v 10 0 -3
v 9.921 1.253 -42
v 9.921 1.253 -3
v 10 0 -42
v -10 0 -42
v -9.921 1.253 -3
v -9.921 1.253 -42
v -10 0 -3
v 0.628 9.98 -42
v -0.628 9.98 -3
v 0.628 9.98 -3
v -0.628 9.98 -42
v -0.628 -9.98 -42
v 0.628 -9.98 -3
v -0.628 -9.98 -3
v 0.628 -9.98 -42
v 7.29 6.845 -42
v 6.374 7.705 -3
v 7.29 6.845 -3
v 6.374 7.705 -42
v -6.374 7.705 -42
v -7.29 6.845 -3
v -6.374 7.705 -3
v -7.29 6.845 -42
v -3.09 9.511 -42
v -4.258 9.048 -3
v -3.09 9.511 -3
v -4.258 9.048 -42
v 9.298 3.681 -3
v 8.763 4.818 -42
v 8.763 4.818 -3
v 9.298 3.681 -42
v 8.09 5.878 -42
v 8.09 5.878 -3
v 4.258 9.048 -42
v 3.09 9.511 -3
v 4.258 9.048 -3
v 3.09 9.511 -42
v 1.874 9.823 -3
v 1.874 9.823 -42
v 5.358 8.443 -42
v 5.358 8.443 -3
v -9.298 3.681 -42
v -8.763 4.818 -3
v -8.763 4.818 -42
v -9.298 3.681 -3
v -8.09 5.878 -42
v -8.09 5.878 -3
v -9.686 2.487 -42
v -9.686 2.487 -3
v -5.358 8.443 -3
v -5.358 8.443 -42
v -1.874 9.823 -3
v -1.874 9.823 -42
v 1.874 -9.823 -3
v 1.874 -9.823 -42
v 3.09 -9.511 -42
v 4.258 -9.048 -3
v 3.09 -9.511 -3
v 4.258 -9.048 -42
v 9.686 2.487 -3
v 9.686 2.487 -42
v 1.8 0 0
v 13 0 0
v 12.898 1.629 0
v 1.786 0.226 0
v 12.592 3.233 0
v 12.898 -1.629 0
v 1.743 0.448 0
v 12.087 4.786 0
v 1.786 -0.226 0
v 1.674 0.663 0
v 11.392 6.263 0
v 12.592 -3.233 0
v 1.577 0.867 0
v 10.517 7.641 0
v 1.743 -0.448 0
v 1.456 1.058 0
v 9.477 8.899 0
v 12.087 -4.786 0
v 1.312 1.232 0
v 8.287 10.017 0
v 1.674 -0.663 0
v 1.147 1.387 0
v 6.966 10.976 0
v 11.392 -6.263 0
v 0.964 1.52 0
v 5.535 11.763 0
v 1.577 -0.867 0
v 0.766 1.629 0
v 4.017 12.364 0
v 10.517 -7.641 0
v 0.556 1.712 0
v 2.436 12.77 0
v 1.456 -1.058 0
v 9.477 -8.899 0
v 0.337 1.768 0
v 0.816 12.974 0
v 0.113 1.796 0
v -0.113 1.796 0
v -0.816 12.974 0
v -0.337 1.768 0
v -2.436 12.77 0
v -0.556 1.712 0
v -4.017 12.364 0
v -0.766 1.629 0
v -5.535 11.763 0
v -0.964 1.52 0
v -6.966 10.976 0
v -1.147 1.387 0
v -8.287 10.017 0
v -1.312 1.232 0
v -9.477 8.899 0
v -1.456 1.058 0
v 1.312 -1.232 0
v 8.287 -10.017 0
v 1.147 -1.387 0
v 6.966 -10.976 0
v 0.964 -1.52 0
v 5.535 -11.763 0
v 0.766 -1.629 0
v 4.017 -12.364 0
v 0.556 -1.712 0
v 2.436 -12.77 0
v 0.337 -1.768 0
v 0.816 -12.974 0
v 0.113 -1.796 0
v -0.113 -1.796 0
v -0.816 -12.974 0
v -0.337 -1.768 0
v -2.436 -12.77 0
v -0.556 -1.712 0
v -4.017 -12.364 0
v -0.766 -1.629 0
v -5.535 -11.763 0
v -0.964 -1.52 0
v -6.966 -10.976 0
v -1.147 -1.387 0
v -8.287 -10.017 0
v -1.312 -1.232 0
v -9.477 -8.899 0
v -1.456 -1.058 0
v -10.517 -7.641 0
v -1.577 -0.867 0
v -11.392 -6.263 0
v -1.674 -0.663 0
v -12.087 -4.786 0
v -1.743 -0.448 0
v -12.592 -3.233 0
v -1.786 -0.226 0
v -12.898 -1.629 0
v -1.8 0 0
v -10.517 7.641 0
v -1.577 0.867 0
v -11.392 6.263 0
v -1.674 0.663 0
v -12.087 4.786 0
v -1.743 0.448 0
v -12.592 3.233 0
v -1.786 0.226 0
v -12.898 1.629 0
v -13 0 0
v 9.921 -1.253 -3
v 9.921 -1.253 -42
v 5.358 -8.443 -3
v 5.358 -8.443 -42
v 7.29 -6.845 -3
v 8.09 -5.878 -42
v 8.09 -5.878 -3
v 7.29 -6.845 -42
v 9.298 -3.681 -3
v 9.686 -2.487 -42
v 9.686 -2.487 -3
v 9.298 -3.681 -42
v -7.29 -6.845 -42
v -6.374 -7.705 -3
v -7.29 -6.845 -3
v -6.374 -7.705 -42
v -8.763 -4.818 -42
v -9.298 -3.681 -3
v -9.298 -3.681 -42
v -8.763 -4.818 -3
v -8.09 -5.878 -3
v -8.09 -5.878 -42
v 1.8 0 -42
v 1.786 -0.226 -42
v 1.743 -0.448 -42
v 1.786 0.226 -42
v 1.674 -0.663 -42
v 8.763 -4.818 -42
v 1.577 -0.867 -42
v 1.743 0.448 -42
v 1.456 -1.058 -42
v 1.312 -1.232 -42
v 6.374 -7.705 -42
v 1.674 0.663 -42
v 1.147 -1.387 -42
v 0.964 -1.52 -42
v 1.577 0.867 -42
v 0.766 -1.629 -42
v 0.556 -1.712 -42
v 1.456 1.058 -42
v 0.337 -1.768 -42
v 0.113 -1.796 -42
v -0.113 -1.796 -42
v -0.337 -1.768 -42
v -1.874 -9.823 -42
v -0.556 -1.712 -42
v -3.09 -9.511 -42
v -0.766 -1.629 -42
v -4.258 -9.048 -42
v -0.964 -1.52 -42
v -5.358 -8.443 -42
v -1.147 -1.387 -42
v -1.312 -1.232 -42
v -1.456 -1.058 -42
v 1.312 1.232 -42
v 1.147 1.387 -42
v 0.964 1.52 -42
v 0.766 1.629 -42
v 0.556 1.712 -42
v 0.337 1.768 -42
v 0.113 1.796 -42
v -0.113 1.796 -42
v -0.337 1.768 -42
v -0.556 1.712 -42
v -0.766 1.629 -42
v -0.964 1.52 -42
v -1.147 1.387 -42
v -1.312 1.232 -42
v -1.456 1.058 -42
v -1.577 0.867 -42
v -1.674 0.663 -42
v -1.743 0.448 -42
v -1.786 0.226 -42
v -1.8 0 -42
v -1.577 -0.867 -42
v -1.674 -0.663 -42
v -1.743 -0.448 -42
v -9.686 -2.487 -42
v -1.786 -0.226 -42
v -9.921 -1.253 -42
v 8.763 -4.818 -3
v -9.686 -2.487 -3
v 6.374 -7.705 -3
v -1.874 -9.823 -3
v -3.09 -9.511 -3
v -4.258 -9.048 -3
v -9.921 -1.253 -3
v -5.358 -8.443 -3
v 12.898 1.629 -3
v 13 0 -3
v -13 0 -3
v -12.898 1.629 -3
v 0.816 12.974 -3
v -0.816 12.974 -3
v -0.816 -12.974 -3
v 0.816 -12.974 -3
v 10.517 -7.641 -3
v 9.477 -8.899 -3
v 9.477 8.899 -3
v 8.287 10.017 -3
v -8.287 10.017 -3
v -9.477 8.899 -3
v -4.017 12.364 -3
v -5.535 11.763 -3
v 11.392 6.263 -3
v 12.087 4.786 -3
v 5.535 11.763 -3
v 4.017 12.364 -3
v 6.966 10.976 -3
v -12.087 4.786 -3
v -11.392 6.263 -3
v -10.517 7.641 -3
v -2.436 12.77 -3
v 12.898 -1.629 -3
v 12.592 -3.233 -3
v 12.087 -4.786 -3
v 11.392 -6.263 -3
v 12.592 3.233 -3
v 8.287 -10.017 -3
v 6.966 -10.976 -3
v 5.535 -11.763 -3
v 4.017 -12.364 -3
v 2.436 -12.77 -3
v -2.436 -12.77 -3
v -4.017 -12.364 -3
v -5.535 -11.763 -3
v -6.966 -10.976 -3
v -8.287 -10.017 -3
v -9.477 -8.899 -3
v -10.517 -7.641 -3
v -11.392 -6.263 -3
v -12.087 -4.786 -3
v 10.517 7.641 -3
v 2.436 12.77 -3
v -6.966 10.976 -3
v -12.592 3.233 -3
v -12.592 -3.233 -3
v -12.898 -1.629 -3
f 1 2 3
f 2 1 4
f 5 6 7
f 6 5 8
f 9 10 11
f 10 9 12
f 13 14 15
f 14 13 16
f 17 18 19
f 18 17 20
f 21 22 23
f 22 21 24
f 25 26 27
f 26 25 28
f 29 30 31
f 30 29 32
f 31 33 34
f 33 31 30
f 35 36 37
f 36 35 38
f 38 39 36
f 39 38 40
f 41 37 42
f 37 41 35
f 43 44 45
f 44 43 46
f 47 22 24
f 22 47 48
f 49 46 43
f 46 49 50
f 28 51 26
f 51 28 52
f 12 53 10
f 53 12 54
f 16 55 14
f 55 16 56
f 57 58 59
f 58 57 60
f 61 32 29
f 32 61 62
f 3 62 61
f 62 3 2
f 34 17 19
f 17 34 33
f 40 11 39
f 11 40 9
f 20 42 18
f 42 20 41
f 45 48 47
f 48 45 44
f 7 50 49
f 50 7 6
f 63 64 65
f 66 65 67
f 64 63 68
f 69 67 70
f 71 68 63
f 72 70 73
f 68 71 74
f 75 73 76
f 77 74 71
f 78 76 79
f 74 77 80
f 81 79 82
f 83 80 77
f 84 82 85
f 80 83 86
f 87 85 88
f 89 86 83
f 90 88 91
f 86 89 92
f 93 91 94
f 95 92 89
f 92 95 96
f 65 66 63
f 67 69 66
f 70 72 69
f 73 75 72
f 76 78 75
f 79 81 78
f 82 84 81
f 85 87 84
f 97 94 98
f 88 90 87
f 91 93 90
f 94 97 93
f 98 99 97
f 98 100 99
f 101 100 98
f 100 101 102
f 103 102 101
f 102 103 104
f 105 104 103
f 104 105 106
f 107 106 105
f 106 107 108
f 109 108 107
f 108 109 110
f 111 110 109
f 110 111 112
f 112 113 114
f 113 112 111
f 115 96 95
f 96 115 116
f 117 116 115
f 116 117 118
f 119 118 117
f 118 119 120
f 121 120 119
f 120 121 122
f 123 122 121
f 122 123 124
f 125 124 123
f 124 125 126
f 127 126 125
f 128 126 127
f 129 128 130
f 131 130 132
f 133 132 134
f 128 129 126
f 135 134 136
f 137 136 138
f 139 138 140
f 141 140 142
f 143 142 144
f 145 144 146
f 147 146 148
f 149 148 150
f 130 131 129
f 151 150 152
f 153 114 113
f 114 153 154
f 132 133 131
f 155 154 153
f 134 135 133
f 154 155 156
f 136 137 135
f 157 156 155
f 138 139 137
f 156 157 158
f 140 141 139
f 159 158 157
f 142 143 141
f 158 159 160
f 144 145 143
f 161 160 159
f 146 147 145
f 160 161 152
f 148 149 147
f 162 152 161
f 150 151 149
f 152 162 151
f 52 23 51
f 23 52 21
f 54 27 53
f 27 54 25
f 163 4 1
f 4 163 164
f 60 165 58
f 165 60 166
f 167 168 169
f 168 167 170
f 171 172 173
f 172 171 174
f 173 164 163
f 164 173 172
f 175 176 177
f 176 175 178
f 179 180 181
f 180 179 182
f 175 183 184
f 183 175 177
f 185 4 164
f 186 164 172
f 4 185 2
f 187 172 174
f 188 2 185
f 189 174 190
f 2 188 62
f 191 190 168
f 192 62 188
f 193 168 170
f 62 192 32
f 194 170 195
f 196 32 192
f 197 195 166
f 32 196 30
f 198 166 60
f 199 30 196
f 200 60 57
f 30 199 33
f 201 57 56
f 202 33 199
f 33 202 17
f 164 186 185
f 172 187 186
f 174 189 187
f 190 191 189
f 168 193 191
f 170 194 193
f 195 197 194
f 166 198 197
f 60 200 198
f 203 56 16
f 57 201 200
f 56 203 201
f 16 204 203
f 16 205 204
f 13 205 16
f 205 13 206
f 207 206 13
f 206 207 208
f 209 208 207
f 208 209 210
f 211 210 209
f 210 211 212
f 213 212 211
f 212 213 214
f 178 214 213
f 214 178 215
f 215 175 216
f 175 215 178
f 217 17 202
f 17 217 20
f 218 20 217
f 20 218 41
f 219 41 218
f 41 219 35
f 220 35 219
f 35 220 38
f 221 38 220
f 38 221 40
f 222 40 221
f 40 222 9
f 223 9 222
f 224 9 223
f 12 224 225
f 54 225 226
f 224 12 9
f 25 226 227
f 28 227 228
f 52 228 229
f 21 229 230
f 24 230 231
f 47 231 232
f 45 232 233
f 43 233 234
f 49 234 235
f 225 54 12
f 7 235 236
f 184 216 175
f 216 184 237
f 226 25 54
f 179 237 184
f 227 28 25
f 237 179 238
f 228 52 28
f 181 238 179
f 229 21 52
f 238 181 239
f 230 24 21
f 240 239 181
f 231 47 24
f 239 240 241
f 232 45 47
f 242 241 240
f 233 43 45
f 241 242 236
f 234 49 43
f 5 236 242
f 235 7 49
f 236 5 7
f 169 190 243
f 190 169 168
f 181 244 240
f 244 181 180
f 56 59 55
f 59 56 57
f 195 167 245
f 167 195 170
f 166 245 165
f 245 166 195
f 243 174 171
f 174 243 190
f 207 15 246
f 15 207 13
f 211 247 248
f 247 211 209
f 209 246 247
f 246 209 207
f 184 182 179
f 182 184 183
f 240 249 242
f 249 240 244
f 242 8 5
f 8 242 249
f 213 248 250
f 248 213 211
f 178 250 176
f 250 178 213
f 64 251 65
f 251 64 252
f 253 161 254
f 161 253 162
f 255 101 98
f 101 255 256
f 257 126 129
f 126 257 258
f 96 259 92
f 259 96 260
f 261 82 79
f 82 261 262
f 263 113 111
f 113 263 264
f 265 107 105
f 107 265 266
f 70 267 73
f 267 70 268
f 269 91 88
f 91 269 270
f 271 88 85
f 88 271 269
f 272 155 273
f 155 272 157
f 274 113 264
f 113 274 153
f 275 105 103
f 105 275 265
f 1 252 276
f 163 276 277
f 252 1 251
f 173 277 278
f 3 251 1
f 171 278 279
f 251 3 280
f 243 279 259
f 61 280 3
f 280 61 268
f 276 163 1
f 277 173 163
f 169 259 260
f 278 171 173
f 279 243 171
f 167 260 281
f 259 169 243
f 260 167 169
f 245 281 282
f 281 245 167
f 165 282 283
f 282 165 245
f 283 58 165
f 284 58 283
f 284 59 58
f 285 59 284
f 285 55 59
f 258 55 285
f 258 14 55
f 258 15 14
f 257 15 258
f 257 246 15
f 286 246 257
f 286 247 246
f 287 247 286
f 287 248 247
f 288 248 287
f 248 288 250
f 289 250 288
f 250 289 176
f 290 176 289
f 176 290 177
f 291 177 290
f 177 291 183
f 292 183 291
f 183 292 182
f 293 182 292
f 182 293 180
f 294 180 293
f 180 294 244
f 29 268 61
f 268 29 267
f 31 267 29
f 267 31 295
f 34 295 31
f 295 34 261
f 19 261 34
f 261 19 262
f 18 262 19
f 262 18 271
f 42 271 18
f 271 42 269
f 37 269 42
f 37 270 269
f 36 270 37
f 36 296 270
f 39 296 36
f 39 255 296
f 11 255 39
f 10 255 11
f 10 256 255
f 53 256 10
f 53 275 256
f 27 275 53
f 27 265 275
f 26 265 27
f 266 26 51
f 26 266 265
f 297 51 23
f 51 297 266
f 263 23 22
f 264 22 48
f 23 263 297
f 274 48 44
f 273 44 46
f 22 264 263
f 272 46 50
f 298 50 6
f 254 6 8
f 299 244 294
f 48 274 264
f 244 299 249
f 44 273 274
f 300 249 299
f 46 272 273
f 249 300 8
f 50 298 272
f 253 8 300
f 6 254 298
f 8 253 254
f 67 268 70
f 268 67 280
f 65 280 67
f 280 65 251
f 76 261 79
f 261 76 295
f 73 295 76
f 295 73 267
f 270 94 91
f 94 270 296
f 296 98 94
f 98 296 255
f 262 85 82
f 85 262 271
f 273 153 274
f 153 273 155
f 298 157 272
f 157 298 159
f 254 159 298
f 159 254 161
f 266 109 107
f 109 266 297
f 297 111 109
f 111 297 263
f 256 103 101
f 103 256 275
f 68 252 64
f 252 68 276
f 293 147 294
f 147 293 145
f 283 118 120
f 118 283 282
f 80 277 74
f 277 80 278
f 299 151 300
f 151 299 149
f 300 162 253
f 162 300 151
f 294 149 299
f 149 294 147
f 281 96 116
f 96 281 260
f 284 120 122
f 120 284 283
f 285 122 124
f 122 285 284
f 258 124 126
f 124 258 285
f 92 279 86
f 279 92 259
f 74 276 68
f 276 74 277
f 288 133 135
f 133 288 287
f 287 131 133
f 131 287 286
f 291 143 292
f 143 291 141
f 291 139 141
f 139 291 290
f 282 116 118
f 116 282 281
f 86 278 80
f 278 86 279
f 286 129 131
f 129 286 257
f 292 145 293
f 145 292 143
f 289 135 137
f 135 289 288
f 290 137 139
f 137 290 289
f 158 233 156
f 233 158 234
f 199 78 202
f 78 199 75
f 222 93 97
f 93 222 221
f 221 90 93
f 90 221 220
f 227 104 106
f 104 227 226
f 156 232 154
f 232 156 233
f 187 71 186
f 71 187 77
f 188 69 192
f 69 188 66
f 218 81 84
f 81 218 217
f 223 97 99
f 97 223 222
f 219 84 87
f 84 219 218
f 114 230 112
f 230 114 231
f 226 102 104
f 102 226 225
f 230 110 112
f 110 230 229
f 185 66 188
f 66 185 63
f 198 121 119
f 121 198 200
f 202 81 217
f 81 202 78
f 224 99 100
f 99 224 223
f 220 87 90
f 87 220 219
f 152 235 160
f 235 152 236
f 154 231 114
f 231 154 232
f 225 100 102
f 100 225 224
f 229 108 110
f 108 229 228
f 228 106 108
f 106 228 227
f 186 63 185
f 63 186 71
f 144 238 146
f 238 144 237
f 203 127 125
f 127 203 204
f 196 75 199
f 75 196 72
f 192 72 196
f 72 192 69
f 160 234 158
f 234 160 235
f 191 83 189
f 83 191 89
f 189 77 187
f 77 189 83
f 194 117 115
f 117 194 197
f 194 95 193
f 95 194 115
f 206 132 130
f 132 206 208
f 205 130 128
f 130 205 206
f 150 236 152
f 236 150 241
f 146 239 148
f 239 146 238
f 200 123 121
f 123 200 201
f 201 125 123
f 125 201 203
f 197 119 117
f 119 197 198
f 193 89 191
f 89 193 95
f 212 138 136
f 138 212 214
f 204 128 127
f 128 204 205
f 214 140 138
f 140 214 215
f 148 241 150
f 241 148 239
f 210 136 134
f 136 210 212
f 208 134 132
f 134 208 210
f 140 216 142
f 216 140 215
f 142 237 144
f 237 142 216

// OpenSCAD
$fn = 50;


difference() {
	union() {
		translate(v = [0, 0, -42.0000000000]) {
			cylinder(h = 42, r = 10.0000000000);
		}
		translate(v = [0, 0, -3.0000000000]) {
			cylinder(h = 3, r = 13.0000000000);
		}
	}
	union() {
		#translate(v = [0, 0, -42]) {
			cylinder(h = 42, r = 1.8000000000);
		}
	}
}
